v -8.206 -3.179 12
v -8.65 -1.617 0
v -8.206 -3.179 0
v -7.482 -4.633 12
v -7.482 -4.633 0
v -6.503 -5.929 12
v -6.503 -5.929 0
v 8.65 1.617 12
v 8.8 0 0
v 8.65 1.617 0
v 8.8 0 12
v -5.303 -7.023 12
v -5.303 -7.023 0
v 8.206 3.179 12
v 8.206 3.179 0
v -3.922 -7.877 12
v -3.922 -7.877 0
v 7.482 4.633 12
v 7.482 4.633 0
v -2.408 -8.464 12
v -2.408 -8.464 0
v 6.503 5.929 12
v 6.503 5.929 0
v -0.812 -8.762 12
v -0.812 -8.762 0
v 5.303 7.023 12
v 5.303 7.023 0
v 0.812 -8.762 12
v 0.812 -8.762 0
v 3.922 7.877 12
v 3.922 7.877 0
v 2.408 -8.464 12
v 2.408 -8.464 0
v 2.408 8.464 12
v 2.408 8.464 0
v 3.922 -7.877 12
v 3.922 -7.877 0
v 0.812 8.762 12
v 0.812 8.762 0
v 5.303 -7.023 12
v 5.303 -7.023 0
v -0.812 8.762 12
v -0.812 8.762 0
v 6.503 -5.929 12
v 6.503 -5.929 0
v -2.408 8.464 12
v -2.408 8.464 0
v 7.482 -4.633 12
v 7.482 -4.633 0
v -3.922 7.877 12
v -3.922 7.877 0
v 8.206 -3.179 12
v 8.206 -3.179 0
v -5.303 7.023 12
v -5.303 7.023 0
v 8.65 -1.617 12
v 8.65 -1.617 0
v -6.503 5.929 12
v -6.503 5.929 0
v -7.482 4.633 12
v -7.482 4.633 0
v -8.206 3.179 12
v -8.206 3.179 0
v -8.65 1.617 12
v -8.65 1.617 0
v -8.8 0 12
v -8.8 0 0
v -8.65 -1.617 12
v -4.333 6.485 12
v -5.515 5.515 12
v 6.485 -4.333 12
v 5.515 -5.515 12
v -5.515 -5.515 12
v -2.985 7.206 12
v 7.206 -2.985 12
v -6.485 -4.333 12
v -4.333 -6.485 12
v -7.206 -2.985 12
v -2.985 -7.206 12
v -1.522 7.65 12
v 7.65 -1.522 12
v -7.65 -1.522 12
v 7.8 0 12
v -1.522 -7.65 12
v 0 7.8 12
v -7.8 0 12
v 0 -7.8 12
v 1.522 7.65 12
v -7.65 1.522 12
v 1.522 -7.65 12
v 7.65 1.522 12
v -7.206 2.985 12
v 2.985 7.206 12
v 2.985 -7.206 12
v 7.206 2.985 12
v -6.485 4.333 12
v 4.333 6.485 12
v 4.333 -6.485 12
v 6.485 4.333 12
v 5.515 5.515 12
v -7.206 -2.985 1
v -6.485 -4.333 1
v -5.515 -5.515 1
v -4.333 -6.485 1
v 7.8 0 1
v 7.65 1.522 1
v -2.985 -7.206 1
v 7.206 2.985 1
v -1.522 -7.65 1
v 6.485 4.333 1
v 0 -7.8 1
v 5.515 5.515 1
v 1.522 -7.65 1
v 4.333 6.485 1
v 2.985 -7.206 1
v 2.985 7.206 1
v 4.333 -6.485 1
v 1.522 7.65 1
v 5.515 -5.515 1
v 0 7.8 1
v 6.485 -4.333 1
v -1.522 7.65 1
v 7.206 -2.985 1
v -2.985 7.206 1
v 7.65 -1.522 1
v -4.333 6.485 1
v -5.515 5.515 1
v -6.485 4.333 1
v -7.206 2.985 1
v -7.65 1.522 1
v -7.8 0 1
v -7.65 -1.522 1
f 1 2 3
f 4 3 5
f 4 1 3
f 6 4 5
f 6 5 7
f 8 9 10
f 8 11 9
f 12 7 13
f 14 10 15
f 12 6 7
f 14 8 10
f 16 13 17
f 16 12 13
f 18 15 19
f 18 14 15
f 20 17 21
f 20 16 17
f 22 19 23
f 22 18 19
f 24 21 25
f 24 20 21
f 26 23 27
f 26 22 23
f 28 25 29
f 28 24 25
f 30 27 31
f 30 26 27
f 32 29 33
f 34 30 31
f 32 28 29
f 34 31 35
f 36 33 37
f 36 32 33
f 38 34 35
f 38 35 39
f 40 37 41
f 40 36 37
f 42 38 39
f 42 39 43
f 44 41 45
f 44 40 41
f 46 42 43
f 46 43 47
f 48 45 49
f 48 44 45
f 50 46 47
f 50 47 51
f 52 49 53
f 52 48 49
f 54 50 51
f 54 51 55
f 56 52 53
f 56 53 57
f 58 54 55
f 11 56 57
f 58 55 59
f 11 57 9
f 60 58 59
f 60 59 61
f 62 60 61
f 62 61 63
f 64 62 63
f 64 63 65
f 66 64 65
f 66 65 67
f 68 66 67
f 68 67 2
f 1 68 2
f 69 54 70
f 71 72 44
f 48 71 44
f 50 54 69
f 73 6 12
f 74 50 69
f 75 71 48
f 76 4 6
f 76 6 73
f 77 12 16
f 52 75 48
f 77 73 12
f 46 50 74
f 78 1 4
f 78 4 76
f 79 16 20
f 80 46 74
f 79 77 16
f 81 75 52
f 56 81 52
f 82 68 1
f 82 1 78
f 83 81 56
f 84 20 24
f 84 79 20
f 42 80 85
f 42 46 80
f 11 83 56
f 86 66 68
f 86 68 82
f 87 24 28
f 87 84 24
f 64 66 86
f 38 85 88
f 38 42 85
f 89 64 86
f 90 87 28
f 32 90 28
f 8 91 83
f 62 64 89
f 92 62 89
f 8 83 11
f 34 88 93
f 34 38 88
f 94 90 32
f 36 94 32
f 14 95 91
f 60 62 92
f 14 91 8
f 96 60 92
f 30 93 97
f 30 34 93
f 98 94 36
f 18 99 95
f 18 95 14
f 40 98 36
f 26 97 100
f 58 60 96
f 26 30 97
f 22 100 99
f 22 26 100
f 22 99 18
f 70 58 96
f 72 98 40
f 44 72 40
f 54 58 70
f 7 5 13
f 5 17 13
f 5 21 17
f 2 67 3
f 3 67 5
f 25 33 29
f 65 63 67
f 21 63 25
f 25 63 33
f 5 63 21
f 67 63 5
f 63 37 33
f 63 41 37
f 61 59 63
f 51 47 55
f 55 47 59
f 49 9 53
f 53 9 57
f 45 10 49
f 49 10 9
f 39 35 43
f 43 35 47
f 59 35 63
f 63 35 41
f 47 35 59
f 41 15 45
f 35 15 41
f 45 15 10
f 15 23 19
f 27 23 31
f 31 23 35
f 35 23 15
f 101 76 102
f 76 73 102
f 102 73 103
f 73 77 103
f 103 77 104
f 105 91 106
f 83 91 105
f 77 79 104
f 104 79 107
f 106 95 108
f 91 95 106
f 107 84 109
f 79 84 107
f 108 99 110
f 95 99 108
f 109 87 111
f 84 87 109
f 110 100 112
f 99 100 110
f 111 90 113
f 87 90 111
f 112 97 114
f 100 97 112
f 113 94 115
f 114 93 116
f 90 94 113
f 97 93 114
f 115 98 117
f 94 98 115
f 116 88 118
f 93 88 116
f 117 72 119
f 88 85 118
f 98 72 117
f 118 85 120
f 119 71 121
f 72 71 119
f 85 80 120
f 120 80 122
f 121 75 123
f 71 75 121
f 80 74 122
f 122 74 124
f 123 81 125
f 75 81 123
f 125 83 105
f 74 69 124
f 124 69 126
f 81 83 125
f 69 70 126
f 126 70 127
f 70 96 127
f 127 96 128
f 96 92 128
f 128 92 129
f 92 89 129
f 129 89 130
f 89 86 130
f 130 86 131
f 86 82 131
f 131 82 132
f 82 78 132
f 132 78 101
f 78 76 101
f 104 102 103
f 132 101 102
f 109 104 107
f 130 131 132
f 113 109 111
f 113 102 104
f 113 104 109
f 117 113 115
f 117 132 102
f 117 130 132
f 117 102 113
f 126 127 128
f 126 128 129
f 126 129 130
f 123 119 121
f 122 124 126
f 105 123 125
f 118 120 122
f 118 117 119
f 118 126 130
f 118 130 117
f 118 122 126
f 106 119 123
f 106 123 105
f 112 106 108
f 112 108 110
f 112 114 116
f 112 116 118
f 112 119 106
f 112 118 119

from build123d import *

# Parameters (mm, degrees)
CYLINDER002_R     = 7.8
CYLINDER002_DEPTH = 12
CYLINDER003_R     = 8.8
CYLINDER003_DEPTH = 12


with BuildPart() as cylinder002:
    # Cylinder002 → Cylinder002 (new body)
    with BuildSketch(Plane.XY.offset(1)):
        Circle(CYLINDER002_R)
    extrude(amount=CYLINDER002_DEPTH)


with BuildPart() as cut:
    # Cylinder003 → Cylinder003 (new body)
    with BuildSketch(Plane.XY):
        Circle(CYLINDER003_R)
    extrude(amount=CYLINDER003_DEPTH)

    # Cut: cut Cylinder002
    add(cylinder002.part, mode=Mode.SUBTRACT)


solid = cut.part
